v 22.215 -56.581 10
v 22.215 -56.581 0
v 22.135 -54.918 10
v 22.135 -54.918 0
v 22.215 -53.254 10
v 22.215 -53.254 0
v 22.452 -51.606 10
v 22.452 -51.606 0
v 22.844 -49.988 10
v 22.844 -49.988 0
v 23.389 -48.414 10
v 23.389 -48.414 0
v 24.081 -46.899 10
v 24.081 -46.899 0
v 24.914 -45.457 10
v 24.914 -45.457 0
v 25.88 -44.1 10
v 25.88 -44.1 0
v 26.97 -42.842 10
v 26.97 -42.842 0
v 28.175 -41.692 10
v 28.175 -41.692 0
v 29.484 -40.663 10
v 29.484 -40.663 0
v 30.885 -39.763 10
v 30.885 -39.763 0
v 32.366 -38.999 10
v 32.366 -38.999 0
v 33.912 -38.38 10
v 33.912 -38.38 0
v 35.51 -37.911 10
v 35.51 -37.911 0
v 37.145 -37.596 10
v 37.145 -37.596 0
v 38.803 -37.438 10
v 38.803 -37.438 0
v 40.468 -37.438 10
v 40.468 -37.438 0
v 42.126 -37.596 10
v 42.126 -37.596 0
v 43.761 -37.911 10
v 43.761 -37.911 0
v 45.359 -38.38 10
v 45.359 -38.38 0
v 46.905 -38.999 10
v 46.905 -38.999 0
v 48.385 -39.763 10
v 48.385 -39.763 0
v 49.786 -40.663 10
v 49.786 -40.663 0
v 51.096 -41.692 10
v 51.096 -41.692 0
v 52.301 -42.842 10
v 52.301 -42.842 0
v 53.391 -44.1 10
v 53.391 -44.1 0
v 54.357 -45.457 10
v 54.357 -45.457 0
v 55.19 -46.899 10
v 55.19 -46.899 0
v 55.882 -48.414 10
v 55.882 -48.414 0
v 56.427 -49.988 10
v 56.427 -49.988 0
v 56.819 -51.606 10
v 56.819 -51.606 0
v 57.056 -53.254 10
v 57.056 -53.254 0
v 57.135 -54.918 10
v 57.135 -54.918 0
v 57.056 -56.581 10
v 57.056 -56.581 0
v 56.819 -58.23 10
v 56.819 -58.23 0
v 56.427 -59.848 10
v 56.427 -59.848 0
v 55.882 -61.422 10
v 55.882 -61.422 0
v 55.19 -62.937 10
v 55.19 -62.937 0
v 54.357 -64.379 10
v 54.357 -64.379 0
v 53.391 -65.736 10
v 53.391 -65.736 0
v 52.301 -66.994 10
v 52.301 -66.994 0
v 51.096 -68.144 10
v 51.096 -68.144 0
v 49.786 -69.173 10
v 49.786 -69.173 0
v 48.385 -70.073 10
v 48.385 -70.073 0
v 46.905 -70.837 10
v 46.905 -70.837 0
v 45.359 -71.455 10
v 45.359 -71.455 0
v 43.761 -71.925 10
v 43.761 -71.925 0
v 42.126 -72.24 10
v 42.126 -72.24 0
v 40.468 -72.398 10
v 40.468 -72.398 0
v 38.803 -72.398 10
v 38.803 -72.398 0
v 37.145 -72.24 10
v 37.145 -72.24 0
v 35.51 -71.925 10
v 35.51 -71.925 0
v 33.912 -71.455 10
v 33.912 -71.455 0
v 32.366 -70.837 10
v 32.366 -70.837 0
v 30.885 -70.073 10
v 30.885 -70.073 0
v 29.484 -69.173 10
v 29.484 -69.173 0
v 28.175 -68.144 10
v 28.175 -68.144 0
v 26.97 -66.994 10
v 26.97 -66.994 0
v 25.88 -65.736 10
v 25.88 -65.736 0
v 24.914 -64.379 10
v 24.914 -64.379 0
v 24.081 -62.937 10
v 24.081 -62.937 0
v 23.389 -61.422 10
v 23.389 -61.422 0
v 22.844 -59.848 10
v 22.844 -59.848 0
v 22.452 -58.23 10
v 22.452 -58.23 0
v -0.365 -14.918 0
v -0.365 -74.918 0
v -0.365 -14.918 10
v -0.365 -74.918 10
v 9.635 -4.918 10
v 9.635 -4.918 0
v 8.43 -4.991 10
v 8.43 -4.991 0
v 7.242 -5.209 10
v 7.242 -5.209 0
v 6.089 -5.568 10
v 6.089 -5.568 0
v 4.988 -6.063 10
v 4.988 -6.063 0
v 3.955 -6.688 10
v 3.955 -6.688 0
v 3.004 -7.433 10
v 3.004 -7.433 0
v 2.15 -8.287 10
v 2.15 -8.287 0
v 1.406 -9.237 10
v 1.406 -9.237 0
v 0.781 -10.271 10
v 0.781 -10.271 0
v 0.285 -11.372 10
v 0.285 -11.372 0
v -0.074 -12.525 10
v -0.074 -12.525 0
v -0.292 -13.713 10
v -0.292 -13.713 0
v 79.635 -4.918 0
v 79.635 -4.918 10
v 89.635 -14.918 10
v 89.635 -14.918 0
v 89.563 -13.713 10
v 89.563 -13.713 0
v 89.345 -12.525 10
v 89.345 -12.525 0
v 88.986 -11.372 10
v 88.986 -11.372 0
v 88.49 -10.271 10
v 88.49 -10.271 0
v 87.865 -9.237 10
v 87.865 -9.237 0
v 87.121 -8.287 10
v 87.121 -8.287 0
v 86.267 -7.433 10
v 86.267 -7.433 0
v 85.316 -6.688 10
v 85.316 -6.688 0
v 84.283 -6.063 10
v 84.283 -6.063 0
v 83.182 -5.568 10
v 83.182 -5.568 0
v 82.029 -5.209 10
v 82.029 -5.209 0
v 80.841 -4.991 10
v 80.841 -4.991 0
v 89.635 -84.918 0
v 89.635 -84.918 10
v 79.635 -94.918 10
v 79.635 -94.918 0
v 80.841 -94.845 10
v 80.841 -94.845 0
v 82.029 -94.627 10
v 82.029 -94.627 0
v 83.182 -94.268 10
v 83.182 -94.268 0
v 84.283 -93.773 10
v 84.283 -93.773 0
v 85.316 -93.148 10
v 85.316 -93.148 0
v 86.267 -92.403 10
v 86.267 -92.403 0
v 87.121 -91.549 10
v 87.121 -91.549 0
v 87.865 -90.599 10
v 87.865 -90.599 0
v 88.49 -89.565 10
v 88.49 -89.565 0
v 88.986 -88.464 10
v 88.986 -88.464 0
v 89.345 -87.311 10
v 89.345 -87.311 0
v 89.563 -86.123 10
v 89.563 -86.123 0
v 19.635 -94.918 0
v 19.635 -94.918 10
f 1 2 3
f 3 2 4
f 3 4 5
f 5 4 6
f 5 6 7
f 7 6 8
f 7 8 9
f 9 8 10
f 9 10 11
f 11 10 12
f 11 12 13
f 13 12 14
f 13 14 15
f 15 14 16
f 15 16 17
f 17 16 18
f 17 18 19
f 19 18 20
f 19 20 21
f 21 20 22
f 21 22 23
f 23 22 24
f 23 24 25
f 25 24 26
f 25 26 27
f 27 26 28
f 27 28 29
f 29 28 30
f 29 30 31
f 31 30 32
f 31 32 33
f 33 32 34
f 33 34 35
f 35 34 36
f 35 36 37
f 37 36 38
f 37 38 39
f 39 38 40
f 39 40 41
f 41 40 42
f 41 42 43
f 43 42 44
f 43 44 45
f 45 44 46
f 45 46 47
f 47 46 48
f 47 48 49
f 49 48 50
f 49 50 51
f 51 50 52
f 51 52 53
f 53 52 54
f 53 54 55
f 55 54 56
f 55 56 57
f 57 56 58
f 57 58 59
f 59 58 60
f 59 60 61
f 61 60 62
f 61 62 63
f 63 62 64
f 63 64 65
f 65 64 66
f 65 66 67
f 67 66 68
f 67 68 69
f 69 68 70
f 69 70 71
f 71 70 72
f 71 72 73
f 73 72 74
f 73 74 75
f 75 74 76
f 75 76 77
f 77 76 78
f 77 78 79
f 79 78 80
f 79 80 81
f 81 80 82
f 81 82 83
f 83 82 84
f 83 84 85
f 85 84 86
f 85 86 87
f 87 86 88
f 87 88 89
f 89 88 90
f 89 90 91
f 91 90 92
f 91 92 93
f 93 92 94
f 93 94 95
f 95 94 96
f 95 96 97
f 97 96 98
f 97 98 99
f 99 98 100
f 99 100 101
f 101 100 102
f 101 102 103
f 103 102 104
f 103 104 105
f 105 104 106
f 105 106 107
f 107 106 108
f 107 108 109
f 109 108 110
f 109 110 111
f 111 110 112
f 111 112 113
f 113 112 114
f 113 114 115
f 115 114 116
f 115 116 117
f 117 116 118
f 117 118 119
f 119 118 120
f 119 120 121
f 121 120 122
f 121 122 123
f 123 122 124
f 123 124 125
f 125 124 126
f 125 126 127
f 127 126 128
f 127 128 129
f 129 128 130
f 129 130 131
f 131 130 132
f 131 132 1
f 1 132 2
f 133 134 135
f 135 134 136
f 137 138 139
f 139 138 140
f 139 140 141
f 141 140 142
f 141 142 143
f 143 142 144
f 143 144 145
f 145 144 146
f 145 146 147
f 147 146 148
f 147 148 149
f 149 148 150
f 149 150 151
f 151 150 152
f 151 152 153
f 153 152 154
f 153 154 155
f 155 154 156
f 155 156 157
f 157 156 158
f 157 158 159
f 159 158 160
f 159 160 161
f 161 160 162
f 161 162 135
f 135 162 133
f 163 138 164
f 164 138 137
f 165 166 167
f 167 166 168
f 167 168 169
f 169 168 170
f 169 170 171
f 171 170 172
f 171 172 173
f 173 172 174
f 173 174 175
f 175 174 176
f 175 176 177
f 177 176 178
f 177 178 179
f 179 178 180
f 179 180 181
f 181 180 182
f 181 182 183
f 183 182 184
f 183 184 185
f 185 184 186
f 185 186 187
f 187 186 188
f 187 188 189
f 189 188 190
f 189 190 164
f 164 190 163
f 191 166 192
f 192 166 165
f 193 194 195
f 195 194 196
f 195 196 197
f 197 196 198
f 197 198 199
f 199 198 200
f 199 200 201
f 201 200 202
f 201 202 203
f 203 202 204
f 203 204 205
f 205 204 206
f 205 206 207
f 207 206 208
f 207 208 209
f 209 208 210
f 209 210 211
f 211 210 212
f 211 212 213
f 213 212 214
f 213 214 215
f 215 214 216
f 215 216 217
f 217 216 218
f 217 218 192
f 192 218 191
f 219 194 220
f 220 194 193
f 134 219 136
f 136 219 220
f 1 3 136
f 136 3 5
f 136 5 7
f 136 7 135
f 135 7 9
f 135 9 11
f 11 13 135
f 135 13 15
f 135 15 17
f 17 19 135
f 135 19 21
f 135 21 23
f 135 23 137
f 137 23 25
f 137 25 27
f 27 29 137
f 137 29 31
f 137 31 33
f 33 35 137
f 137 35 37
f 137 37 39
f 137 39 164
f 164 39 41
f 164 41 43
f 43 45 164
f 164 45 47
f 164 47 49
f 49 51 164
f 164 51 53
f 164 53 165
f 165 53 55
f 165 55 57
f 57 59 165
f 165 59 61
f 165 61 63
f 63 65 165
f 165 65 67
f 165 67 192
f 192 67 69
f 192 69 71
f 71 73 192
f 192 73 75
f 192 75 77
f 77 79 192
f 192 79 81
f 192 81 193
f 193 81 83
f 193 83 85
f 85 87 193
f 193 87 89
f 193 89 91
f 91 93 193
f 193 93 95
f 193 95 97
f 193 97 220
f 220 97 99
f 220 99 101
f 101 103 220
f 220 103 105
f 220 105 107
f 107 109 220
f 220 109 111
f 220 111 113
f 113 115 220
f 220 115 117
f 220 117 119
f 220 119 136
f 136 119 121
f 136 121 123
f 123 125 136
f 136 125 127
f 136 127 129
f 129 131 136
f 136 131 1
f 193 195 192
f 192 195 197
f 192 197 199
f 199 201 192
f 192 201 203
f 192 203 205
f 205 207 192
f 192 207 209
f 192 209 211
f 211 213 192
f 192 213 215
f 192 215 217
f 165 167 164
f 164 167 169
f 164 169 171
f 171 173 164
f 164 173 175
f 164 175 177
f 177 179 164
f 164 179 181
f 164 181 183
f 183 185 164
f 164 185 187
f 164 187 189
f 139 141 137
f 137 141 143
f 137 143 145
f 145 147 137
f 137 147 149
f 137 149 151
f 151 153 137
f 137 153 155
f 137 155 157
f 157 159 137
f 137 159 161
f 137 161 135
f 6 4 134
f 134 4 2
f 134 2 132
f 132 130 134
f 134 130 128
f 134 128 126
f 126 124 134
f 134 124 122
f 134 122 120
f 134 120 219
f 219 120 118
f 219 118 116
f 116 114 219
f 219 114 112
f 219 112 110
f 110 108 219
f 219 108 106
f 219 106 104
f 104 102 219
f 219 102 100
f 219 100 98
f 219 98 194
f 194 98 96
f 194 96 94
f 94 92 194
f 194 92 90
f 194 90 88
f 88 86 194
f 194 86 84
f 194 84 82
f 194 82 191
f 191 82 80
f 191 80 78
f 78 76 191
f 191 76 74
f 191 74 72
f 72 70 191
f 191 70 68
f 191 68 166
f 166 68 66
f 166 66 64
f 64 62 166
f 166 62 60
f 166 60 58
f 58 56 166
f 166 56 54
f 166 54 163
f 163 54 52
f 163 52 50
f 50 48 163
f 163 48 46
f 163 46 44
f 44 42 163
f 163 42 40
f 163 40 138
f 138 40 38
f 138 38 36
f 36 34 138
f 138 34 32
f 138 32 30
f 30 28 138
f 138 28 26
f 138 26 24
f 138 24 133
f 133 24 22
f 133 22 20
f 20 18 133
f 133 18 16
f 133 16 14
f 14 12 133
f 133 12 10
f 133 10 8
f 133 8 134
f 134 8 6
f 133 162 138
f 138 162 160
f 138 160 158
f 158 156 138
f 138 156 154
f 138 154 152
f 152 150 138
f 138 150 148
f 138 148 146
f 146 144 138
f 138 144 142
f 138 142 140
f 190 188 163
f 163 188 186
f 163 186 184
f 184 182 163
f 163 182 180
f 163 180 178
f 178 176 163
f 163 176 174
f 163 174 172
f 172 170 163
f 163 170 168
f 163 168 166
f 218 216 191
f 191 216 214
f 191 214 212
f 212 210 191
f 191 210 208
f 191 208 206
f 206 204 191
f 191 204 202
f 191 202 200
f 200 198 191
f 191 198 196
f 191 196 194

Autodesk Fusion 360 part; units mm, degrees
sketch "Sketch1" plane through (0, 0, 0) normal (0, 0, 1) x (1, 0, 0)
  line L0 (9.6355, -4.918) -> (79.6355, -4.918)
  line L1 (89.6355, -14.918) -> (89.6355, -84.918)
  line L2 (79.6355, -94.918) -> (-0.3645, -94.918)
  line L3 (-0.3645, -94.918) -> (-0.3645, -14.918)
  line L4 (-0.3645, -74.918) -> (19.6355, -94.918)
  circle A0 centre (39.6355, -54.918) radius 17.5
  arc A1 (9.6355, -4.918) -> (-0.3645, -14.918) centre (9.6355, -14.918) ccw
  arc A2 (89.6355, -14.918) -> (79.6355, -4.918) centre (79.6355, -14.918) ccw
  arc A3 (79.6355, -94.918) -> (89.6355, -84.918) centre (79.6355, -84.918) ccw
  point P0 (-0.3645, -4.918)
  point P1 (89.6355, -4.918)
  dimension "d1" = 90
  dimension "d2" = 90
  dimension "d3" = 20
  dimension "d4" = 20
  dimension "d5" = 35
  dimension "d6" = 40
  dimension "d7" = 40
  dimension "d8" = 10
  dimension "d9" = 10
  dimension "d10" = 10
extrude "Extrude1" add sketch "Sketch1" along normal blind 10 contours L0 L1 L2 L3 L4 A1 A2 A3
